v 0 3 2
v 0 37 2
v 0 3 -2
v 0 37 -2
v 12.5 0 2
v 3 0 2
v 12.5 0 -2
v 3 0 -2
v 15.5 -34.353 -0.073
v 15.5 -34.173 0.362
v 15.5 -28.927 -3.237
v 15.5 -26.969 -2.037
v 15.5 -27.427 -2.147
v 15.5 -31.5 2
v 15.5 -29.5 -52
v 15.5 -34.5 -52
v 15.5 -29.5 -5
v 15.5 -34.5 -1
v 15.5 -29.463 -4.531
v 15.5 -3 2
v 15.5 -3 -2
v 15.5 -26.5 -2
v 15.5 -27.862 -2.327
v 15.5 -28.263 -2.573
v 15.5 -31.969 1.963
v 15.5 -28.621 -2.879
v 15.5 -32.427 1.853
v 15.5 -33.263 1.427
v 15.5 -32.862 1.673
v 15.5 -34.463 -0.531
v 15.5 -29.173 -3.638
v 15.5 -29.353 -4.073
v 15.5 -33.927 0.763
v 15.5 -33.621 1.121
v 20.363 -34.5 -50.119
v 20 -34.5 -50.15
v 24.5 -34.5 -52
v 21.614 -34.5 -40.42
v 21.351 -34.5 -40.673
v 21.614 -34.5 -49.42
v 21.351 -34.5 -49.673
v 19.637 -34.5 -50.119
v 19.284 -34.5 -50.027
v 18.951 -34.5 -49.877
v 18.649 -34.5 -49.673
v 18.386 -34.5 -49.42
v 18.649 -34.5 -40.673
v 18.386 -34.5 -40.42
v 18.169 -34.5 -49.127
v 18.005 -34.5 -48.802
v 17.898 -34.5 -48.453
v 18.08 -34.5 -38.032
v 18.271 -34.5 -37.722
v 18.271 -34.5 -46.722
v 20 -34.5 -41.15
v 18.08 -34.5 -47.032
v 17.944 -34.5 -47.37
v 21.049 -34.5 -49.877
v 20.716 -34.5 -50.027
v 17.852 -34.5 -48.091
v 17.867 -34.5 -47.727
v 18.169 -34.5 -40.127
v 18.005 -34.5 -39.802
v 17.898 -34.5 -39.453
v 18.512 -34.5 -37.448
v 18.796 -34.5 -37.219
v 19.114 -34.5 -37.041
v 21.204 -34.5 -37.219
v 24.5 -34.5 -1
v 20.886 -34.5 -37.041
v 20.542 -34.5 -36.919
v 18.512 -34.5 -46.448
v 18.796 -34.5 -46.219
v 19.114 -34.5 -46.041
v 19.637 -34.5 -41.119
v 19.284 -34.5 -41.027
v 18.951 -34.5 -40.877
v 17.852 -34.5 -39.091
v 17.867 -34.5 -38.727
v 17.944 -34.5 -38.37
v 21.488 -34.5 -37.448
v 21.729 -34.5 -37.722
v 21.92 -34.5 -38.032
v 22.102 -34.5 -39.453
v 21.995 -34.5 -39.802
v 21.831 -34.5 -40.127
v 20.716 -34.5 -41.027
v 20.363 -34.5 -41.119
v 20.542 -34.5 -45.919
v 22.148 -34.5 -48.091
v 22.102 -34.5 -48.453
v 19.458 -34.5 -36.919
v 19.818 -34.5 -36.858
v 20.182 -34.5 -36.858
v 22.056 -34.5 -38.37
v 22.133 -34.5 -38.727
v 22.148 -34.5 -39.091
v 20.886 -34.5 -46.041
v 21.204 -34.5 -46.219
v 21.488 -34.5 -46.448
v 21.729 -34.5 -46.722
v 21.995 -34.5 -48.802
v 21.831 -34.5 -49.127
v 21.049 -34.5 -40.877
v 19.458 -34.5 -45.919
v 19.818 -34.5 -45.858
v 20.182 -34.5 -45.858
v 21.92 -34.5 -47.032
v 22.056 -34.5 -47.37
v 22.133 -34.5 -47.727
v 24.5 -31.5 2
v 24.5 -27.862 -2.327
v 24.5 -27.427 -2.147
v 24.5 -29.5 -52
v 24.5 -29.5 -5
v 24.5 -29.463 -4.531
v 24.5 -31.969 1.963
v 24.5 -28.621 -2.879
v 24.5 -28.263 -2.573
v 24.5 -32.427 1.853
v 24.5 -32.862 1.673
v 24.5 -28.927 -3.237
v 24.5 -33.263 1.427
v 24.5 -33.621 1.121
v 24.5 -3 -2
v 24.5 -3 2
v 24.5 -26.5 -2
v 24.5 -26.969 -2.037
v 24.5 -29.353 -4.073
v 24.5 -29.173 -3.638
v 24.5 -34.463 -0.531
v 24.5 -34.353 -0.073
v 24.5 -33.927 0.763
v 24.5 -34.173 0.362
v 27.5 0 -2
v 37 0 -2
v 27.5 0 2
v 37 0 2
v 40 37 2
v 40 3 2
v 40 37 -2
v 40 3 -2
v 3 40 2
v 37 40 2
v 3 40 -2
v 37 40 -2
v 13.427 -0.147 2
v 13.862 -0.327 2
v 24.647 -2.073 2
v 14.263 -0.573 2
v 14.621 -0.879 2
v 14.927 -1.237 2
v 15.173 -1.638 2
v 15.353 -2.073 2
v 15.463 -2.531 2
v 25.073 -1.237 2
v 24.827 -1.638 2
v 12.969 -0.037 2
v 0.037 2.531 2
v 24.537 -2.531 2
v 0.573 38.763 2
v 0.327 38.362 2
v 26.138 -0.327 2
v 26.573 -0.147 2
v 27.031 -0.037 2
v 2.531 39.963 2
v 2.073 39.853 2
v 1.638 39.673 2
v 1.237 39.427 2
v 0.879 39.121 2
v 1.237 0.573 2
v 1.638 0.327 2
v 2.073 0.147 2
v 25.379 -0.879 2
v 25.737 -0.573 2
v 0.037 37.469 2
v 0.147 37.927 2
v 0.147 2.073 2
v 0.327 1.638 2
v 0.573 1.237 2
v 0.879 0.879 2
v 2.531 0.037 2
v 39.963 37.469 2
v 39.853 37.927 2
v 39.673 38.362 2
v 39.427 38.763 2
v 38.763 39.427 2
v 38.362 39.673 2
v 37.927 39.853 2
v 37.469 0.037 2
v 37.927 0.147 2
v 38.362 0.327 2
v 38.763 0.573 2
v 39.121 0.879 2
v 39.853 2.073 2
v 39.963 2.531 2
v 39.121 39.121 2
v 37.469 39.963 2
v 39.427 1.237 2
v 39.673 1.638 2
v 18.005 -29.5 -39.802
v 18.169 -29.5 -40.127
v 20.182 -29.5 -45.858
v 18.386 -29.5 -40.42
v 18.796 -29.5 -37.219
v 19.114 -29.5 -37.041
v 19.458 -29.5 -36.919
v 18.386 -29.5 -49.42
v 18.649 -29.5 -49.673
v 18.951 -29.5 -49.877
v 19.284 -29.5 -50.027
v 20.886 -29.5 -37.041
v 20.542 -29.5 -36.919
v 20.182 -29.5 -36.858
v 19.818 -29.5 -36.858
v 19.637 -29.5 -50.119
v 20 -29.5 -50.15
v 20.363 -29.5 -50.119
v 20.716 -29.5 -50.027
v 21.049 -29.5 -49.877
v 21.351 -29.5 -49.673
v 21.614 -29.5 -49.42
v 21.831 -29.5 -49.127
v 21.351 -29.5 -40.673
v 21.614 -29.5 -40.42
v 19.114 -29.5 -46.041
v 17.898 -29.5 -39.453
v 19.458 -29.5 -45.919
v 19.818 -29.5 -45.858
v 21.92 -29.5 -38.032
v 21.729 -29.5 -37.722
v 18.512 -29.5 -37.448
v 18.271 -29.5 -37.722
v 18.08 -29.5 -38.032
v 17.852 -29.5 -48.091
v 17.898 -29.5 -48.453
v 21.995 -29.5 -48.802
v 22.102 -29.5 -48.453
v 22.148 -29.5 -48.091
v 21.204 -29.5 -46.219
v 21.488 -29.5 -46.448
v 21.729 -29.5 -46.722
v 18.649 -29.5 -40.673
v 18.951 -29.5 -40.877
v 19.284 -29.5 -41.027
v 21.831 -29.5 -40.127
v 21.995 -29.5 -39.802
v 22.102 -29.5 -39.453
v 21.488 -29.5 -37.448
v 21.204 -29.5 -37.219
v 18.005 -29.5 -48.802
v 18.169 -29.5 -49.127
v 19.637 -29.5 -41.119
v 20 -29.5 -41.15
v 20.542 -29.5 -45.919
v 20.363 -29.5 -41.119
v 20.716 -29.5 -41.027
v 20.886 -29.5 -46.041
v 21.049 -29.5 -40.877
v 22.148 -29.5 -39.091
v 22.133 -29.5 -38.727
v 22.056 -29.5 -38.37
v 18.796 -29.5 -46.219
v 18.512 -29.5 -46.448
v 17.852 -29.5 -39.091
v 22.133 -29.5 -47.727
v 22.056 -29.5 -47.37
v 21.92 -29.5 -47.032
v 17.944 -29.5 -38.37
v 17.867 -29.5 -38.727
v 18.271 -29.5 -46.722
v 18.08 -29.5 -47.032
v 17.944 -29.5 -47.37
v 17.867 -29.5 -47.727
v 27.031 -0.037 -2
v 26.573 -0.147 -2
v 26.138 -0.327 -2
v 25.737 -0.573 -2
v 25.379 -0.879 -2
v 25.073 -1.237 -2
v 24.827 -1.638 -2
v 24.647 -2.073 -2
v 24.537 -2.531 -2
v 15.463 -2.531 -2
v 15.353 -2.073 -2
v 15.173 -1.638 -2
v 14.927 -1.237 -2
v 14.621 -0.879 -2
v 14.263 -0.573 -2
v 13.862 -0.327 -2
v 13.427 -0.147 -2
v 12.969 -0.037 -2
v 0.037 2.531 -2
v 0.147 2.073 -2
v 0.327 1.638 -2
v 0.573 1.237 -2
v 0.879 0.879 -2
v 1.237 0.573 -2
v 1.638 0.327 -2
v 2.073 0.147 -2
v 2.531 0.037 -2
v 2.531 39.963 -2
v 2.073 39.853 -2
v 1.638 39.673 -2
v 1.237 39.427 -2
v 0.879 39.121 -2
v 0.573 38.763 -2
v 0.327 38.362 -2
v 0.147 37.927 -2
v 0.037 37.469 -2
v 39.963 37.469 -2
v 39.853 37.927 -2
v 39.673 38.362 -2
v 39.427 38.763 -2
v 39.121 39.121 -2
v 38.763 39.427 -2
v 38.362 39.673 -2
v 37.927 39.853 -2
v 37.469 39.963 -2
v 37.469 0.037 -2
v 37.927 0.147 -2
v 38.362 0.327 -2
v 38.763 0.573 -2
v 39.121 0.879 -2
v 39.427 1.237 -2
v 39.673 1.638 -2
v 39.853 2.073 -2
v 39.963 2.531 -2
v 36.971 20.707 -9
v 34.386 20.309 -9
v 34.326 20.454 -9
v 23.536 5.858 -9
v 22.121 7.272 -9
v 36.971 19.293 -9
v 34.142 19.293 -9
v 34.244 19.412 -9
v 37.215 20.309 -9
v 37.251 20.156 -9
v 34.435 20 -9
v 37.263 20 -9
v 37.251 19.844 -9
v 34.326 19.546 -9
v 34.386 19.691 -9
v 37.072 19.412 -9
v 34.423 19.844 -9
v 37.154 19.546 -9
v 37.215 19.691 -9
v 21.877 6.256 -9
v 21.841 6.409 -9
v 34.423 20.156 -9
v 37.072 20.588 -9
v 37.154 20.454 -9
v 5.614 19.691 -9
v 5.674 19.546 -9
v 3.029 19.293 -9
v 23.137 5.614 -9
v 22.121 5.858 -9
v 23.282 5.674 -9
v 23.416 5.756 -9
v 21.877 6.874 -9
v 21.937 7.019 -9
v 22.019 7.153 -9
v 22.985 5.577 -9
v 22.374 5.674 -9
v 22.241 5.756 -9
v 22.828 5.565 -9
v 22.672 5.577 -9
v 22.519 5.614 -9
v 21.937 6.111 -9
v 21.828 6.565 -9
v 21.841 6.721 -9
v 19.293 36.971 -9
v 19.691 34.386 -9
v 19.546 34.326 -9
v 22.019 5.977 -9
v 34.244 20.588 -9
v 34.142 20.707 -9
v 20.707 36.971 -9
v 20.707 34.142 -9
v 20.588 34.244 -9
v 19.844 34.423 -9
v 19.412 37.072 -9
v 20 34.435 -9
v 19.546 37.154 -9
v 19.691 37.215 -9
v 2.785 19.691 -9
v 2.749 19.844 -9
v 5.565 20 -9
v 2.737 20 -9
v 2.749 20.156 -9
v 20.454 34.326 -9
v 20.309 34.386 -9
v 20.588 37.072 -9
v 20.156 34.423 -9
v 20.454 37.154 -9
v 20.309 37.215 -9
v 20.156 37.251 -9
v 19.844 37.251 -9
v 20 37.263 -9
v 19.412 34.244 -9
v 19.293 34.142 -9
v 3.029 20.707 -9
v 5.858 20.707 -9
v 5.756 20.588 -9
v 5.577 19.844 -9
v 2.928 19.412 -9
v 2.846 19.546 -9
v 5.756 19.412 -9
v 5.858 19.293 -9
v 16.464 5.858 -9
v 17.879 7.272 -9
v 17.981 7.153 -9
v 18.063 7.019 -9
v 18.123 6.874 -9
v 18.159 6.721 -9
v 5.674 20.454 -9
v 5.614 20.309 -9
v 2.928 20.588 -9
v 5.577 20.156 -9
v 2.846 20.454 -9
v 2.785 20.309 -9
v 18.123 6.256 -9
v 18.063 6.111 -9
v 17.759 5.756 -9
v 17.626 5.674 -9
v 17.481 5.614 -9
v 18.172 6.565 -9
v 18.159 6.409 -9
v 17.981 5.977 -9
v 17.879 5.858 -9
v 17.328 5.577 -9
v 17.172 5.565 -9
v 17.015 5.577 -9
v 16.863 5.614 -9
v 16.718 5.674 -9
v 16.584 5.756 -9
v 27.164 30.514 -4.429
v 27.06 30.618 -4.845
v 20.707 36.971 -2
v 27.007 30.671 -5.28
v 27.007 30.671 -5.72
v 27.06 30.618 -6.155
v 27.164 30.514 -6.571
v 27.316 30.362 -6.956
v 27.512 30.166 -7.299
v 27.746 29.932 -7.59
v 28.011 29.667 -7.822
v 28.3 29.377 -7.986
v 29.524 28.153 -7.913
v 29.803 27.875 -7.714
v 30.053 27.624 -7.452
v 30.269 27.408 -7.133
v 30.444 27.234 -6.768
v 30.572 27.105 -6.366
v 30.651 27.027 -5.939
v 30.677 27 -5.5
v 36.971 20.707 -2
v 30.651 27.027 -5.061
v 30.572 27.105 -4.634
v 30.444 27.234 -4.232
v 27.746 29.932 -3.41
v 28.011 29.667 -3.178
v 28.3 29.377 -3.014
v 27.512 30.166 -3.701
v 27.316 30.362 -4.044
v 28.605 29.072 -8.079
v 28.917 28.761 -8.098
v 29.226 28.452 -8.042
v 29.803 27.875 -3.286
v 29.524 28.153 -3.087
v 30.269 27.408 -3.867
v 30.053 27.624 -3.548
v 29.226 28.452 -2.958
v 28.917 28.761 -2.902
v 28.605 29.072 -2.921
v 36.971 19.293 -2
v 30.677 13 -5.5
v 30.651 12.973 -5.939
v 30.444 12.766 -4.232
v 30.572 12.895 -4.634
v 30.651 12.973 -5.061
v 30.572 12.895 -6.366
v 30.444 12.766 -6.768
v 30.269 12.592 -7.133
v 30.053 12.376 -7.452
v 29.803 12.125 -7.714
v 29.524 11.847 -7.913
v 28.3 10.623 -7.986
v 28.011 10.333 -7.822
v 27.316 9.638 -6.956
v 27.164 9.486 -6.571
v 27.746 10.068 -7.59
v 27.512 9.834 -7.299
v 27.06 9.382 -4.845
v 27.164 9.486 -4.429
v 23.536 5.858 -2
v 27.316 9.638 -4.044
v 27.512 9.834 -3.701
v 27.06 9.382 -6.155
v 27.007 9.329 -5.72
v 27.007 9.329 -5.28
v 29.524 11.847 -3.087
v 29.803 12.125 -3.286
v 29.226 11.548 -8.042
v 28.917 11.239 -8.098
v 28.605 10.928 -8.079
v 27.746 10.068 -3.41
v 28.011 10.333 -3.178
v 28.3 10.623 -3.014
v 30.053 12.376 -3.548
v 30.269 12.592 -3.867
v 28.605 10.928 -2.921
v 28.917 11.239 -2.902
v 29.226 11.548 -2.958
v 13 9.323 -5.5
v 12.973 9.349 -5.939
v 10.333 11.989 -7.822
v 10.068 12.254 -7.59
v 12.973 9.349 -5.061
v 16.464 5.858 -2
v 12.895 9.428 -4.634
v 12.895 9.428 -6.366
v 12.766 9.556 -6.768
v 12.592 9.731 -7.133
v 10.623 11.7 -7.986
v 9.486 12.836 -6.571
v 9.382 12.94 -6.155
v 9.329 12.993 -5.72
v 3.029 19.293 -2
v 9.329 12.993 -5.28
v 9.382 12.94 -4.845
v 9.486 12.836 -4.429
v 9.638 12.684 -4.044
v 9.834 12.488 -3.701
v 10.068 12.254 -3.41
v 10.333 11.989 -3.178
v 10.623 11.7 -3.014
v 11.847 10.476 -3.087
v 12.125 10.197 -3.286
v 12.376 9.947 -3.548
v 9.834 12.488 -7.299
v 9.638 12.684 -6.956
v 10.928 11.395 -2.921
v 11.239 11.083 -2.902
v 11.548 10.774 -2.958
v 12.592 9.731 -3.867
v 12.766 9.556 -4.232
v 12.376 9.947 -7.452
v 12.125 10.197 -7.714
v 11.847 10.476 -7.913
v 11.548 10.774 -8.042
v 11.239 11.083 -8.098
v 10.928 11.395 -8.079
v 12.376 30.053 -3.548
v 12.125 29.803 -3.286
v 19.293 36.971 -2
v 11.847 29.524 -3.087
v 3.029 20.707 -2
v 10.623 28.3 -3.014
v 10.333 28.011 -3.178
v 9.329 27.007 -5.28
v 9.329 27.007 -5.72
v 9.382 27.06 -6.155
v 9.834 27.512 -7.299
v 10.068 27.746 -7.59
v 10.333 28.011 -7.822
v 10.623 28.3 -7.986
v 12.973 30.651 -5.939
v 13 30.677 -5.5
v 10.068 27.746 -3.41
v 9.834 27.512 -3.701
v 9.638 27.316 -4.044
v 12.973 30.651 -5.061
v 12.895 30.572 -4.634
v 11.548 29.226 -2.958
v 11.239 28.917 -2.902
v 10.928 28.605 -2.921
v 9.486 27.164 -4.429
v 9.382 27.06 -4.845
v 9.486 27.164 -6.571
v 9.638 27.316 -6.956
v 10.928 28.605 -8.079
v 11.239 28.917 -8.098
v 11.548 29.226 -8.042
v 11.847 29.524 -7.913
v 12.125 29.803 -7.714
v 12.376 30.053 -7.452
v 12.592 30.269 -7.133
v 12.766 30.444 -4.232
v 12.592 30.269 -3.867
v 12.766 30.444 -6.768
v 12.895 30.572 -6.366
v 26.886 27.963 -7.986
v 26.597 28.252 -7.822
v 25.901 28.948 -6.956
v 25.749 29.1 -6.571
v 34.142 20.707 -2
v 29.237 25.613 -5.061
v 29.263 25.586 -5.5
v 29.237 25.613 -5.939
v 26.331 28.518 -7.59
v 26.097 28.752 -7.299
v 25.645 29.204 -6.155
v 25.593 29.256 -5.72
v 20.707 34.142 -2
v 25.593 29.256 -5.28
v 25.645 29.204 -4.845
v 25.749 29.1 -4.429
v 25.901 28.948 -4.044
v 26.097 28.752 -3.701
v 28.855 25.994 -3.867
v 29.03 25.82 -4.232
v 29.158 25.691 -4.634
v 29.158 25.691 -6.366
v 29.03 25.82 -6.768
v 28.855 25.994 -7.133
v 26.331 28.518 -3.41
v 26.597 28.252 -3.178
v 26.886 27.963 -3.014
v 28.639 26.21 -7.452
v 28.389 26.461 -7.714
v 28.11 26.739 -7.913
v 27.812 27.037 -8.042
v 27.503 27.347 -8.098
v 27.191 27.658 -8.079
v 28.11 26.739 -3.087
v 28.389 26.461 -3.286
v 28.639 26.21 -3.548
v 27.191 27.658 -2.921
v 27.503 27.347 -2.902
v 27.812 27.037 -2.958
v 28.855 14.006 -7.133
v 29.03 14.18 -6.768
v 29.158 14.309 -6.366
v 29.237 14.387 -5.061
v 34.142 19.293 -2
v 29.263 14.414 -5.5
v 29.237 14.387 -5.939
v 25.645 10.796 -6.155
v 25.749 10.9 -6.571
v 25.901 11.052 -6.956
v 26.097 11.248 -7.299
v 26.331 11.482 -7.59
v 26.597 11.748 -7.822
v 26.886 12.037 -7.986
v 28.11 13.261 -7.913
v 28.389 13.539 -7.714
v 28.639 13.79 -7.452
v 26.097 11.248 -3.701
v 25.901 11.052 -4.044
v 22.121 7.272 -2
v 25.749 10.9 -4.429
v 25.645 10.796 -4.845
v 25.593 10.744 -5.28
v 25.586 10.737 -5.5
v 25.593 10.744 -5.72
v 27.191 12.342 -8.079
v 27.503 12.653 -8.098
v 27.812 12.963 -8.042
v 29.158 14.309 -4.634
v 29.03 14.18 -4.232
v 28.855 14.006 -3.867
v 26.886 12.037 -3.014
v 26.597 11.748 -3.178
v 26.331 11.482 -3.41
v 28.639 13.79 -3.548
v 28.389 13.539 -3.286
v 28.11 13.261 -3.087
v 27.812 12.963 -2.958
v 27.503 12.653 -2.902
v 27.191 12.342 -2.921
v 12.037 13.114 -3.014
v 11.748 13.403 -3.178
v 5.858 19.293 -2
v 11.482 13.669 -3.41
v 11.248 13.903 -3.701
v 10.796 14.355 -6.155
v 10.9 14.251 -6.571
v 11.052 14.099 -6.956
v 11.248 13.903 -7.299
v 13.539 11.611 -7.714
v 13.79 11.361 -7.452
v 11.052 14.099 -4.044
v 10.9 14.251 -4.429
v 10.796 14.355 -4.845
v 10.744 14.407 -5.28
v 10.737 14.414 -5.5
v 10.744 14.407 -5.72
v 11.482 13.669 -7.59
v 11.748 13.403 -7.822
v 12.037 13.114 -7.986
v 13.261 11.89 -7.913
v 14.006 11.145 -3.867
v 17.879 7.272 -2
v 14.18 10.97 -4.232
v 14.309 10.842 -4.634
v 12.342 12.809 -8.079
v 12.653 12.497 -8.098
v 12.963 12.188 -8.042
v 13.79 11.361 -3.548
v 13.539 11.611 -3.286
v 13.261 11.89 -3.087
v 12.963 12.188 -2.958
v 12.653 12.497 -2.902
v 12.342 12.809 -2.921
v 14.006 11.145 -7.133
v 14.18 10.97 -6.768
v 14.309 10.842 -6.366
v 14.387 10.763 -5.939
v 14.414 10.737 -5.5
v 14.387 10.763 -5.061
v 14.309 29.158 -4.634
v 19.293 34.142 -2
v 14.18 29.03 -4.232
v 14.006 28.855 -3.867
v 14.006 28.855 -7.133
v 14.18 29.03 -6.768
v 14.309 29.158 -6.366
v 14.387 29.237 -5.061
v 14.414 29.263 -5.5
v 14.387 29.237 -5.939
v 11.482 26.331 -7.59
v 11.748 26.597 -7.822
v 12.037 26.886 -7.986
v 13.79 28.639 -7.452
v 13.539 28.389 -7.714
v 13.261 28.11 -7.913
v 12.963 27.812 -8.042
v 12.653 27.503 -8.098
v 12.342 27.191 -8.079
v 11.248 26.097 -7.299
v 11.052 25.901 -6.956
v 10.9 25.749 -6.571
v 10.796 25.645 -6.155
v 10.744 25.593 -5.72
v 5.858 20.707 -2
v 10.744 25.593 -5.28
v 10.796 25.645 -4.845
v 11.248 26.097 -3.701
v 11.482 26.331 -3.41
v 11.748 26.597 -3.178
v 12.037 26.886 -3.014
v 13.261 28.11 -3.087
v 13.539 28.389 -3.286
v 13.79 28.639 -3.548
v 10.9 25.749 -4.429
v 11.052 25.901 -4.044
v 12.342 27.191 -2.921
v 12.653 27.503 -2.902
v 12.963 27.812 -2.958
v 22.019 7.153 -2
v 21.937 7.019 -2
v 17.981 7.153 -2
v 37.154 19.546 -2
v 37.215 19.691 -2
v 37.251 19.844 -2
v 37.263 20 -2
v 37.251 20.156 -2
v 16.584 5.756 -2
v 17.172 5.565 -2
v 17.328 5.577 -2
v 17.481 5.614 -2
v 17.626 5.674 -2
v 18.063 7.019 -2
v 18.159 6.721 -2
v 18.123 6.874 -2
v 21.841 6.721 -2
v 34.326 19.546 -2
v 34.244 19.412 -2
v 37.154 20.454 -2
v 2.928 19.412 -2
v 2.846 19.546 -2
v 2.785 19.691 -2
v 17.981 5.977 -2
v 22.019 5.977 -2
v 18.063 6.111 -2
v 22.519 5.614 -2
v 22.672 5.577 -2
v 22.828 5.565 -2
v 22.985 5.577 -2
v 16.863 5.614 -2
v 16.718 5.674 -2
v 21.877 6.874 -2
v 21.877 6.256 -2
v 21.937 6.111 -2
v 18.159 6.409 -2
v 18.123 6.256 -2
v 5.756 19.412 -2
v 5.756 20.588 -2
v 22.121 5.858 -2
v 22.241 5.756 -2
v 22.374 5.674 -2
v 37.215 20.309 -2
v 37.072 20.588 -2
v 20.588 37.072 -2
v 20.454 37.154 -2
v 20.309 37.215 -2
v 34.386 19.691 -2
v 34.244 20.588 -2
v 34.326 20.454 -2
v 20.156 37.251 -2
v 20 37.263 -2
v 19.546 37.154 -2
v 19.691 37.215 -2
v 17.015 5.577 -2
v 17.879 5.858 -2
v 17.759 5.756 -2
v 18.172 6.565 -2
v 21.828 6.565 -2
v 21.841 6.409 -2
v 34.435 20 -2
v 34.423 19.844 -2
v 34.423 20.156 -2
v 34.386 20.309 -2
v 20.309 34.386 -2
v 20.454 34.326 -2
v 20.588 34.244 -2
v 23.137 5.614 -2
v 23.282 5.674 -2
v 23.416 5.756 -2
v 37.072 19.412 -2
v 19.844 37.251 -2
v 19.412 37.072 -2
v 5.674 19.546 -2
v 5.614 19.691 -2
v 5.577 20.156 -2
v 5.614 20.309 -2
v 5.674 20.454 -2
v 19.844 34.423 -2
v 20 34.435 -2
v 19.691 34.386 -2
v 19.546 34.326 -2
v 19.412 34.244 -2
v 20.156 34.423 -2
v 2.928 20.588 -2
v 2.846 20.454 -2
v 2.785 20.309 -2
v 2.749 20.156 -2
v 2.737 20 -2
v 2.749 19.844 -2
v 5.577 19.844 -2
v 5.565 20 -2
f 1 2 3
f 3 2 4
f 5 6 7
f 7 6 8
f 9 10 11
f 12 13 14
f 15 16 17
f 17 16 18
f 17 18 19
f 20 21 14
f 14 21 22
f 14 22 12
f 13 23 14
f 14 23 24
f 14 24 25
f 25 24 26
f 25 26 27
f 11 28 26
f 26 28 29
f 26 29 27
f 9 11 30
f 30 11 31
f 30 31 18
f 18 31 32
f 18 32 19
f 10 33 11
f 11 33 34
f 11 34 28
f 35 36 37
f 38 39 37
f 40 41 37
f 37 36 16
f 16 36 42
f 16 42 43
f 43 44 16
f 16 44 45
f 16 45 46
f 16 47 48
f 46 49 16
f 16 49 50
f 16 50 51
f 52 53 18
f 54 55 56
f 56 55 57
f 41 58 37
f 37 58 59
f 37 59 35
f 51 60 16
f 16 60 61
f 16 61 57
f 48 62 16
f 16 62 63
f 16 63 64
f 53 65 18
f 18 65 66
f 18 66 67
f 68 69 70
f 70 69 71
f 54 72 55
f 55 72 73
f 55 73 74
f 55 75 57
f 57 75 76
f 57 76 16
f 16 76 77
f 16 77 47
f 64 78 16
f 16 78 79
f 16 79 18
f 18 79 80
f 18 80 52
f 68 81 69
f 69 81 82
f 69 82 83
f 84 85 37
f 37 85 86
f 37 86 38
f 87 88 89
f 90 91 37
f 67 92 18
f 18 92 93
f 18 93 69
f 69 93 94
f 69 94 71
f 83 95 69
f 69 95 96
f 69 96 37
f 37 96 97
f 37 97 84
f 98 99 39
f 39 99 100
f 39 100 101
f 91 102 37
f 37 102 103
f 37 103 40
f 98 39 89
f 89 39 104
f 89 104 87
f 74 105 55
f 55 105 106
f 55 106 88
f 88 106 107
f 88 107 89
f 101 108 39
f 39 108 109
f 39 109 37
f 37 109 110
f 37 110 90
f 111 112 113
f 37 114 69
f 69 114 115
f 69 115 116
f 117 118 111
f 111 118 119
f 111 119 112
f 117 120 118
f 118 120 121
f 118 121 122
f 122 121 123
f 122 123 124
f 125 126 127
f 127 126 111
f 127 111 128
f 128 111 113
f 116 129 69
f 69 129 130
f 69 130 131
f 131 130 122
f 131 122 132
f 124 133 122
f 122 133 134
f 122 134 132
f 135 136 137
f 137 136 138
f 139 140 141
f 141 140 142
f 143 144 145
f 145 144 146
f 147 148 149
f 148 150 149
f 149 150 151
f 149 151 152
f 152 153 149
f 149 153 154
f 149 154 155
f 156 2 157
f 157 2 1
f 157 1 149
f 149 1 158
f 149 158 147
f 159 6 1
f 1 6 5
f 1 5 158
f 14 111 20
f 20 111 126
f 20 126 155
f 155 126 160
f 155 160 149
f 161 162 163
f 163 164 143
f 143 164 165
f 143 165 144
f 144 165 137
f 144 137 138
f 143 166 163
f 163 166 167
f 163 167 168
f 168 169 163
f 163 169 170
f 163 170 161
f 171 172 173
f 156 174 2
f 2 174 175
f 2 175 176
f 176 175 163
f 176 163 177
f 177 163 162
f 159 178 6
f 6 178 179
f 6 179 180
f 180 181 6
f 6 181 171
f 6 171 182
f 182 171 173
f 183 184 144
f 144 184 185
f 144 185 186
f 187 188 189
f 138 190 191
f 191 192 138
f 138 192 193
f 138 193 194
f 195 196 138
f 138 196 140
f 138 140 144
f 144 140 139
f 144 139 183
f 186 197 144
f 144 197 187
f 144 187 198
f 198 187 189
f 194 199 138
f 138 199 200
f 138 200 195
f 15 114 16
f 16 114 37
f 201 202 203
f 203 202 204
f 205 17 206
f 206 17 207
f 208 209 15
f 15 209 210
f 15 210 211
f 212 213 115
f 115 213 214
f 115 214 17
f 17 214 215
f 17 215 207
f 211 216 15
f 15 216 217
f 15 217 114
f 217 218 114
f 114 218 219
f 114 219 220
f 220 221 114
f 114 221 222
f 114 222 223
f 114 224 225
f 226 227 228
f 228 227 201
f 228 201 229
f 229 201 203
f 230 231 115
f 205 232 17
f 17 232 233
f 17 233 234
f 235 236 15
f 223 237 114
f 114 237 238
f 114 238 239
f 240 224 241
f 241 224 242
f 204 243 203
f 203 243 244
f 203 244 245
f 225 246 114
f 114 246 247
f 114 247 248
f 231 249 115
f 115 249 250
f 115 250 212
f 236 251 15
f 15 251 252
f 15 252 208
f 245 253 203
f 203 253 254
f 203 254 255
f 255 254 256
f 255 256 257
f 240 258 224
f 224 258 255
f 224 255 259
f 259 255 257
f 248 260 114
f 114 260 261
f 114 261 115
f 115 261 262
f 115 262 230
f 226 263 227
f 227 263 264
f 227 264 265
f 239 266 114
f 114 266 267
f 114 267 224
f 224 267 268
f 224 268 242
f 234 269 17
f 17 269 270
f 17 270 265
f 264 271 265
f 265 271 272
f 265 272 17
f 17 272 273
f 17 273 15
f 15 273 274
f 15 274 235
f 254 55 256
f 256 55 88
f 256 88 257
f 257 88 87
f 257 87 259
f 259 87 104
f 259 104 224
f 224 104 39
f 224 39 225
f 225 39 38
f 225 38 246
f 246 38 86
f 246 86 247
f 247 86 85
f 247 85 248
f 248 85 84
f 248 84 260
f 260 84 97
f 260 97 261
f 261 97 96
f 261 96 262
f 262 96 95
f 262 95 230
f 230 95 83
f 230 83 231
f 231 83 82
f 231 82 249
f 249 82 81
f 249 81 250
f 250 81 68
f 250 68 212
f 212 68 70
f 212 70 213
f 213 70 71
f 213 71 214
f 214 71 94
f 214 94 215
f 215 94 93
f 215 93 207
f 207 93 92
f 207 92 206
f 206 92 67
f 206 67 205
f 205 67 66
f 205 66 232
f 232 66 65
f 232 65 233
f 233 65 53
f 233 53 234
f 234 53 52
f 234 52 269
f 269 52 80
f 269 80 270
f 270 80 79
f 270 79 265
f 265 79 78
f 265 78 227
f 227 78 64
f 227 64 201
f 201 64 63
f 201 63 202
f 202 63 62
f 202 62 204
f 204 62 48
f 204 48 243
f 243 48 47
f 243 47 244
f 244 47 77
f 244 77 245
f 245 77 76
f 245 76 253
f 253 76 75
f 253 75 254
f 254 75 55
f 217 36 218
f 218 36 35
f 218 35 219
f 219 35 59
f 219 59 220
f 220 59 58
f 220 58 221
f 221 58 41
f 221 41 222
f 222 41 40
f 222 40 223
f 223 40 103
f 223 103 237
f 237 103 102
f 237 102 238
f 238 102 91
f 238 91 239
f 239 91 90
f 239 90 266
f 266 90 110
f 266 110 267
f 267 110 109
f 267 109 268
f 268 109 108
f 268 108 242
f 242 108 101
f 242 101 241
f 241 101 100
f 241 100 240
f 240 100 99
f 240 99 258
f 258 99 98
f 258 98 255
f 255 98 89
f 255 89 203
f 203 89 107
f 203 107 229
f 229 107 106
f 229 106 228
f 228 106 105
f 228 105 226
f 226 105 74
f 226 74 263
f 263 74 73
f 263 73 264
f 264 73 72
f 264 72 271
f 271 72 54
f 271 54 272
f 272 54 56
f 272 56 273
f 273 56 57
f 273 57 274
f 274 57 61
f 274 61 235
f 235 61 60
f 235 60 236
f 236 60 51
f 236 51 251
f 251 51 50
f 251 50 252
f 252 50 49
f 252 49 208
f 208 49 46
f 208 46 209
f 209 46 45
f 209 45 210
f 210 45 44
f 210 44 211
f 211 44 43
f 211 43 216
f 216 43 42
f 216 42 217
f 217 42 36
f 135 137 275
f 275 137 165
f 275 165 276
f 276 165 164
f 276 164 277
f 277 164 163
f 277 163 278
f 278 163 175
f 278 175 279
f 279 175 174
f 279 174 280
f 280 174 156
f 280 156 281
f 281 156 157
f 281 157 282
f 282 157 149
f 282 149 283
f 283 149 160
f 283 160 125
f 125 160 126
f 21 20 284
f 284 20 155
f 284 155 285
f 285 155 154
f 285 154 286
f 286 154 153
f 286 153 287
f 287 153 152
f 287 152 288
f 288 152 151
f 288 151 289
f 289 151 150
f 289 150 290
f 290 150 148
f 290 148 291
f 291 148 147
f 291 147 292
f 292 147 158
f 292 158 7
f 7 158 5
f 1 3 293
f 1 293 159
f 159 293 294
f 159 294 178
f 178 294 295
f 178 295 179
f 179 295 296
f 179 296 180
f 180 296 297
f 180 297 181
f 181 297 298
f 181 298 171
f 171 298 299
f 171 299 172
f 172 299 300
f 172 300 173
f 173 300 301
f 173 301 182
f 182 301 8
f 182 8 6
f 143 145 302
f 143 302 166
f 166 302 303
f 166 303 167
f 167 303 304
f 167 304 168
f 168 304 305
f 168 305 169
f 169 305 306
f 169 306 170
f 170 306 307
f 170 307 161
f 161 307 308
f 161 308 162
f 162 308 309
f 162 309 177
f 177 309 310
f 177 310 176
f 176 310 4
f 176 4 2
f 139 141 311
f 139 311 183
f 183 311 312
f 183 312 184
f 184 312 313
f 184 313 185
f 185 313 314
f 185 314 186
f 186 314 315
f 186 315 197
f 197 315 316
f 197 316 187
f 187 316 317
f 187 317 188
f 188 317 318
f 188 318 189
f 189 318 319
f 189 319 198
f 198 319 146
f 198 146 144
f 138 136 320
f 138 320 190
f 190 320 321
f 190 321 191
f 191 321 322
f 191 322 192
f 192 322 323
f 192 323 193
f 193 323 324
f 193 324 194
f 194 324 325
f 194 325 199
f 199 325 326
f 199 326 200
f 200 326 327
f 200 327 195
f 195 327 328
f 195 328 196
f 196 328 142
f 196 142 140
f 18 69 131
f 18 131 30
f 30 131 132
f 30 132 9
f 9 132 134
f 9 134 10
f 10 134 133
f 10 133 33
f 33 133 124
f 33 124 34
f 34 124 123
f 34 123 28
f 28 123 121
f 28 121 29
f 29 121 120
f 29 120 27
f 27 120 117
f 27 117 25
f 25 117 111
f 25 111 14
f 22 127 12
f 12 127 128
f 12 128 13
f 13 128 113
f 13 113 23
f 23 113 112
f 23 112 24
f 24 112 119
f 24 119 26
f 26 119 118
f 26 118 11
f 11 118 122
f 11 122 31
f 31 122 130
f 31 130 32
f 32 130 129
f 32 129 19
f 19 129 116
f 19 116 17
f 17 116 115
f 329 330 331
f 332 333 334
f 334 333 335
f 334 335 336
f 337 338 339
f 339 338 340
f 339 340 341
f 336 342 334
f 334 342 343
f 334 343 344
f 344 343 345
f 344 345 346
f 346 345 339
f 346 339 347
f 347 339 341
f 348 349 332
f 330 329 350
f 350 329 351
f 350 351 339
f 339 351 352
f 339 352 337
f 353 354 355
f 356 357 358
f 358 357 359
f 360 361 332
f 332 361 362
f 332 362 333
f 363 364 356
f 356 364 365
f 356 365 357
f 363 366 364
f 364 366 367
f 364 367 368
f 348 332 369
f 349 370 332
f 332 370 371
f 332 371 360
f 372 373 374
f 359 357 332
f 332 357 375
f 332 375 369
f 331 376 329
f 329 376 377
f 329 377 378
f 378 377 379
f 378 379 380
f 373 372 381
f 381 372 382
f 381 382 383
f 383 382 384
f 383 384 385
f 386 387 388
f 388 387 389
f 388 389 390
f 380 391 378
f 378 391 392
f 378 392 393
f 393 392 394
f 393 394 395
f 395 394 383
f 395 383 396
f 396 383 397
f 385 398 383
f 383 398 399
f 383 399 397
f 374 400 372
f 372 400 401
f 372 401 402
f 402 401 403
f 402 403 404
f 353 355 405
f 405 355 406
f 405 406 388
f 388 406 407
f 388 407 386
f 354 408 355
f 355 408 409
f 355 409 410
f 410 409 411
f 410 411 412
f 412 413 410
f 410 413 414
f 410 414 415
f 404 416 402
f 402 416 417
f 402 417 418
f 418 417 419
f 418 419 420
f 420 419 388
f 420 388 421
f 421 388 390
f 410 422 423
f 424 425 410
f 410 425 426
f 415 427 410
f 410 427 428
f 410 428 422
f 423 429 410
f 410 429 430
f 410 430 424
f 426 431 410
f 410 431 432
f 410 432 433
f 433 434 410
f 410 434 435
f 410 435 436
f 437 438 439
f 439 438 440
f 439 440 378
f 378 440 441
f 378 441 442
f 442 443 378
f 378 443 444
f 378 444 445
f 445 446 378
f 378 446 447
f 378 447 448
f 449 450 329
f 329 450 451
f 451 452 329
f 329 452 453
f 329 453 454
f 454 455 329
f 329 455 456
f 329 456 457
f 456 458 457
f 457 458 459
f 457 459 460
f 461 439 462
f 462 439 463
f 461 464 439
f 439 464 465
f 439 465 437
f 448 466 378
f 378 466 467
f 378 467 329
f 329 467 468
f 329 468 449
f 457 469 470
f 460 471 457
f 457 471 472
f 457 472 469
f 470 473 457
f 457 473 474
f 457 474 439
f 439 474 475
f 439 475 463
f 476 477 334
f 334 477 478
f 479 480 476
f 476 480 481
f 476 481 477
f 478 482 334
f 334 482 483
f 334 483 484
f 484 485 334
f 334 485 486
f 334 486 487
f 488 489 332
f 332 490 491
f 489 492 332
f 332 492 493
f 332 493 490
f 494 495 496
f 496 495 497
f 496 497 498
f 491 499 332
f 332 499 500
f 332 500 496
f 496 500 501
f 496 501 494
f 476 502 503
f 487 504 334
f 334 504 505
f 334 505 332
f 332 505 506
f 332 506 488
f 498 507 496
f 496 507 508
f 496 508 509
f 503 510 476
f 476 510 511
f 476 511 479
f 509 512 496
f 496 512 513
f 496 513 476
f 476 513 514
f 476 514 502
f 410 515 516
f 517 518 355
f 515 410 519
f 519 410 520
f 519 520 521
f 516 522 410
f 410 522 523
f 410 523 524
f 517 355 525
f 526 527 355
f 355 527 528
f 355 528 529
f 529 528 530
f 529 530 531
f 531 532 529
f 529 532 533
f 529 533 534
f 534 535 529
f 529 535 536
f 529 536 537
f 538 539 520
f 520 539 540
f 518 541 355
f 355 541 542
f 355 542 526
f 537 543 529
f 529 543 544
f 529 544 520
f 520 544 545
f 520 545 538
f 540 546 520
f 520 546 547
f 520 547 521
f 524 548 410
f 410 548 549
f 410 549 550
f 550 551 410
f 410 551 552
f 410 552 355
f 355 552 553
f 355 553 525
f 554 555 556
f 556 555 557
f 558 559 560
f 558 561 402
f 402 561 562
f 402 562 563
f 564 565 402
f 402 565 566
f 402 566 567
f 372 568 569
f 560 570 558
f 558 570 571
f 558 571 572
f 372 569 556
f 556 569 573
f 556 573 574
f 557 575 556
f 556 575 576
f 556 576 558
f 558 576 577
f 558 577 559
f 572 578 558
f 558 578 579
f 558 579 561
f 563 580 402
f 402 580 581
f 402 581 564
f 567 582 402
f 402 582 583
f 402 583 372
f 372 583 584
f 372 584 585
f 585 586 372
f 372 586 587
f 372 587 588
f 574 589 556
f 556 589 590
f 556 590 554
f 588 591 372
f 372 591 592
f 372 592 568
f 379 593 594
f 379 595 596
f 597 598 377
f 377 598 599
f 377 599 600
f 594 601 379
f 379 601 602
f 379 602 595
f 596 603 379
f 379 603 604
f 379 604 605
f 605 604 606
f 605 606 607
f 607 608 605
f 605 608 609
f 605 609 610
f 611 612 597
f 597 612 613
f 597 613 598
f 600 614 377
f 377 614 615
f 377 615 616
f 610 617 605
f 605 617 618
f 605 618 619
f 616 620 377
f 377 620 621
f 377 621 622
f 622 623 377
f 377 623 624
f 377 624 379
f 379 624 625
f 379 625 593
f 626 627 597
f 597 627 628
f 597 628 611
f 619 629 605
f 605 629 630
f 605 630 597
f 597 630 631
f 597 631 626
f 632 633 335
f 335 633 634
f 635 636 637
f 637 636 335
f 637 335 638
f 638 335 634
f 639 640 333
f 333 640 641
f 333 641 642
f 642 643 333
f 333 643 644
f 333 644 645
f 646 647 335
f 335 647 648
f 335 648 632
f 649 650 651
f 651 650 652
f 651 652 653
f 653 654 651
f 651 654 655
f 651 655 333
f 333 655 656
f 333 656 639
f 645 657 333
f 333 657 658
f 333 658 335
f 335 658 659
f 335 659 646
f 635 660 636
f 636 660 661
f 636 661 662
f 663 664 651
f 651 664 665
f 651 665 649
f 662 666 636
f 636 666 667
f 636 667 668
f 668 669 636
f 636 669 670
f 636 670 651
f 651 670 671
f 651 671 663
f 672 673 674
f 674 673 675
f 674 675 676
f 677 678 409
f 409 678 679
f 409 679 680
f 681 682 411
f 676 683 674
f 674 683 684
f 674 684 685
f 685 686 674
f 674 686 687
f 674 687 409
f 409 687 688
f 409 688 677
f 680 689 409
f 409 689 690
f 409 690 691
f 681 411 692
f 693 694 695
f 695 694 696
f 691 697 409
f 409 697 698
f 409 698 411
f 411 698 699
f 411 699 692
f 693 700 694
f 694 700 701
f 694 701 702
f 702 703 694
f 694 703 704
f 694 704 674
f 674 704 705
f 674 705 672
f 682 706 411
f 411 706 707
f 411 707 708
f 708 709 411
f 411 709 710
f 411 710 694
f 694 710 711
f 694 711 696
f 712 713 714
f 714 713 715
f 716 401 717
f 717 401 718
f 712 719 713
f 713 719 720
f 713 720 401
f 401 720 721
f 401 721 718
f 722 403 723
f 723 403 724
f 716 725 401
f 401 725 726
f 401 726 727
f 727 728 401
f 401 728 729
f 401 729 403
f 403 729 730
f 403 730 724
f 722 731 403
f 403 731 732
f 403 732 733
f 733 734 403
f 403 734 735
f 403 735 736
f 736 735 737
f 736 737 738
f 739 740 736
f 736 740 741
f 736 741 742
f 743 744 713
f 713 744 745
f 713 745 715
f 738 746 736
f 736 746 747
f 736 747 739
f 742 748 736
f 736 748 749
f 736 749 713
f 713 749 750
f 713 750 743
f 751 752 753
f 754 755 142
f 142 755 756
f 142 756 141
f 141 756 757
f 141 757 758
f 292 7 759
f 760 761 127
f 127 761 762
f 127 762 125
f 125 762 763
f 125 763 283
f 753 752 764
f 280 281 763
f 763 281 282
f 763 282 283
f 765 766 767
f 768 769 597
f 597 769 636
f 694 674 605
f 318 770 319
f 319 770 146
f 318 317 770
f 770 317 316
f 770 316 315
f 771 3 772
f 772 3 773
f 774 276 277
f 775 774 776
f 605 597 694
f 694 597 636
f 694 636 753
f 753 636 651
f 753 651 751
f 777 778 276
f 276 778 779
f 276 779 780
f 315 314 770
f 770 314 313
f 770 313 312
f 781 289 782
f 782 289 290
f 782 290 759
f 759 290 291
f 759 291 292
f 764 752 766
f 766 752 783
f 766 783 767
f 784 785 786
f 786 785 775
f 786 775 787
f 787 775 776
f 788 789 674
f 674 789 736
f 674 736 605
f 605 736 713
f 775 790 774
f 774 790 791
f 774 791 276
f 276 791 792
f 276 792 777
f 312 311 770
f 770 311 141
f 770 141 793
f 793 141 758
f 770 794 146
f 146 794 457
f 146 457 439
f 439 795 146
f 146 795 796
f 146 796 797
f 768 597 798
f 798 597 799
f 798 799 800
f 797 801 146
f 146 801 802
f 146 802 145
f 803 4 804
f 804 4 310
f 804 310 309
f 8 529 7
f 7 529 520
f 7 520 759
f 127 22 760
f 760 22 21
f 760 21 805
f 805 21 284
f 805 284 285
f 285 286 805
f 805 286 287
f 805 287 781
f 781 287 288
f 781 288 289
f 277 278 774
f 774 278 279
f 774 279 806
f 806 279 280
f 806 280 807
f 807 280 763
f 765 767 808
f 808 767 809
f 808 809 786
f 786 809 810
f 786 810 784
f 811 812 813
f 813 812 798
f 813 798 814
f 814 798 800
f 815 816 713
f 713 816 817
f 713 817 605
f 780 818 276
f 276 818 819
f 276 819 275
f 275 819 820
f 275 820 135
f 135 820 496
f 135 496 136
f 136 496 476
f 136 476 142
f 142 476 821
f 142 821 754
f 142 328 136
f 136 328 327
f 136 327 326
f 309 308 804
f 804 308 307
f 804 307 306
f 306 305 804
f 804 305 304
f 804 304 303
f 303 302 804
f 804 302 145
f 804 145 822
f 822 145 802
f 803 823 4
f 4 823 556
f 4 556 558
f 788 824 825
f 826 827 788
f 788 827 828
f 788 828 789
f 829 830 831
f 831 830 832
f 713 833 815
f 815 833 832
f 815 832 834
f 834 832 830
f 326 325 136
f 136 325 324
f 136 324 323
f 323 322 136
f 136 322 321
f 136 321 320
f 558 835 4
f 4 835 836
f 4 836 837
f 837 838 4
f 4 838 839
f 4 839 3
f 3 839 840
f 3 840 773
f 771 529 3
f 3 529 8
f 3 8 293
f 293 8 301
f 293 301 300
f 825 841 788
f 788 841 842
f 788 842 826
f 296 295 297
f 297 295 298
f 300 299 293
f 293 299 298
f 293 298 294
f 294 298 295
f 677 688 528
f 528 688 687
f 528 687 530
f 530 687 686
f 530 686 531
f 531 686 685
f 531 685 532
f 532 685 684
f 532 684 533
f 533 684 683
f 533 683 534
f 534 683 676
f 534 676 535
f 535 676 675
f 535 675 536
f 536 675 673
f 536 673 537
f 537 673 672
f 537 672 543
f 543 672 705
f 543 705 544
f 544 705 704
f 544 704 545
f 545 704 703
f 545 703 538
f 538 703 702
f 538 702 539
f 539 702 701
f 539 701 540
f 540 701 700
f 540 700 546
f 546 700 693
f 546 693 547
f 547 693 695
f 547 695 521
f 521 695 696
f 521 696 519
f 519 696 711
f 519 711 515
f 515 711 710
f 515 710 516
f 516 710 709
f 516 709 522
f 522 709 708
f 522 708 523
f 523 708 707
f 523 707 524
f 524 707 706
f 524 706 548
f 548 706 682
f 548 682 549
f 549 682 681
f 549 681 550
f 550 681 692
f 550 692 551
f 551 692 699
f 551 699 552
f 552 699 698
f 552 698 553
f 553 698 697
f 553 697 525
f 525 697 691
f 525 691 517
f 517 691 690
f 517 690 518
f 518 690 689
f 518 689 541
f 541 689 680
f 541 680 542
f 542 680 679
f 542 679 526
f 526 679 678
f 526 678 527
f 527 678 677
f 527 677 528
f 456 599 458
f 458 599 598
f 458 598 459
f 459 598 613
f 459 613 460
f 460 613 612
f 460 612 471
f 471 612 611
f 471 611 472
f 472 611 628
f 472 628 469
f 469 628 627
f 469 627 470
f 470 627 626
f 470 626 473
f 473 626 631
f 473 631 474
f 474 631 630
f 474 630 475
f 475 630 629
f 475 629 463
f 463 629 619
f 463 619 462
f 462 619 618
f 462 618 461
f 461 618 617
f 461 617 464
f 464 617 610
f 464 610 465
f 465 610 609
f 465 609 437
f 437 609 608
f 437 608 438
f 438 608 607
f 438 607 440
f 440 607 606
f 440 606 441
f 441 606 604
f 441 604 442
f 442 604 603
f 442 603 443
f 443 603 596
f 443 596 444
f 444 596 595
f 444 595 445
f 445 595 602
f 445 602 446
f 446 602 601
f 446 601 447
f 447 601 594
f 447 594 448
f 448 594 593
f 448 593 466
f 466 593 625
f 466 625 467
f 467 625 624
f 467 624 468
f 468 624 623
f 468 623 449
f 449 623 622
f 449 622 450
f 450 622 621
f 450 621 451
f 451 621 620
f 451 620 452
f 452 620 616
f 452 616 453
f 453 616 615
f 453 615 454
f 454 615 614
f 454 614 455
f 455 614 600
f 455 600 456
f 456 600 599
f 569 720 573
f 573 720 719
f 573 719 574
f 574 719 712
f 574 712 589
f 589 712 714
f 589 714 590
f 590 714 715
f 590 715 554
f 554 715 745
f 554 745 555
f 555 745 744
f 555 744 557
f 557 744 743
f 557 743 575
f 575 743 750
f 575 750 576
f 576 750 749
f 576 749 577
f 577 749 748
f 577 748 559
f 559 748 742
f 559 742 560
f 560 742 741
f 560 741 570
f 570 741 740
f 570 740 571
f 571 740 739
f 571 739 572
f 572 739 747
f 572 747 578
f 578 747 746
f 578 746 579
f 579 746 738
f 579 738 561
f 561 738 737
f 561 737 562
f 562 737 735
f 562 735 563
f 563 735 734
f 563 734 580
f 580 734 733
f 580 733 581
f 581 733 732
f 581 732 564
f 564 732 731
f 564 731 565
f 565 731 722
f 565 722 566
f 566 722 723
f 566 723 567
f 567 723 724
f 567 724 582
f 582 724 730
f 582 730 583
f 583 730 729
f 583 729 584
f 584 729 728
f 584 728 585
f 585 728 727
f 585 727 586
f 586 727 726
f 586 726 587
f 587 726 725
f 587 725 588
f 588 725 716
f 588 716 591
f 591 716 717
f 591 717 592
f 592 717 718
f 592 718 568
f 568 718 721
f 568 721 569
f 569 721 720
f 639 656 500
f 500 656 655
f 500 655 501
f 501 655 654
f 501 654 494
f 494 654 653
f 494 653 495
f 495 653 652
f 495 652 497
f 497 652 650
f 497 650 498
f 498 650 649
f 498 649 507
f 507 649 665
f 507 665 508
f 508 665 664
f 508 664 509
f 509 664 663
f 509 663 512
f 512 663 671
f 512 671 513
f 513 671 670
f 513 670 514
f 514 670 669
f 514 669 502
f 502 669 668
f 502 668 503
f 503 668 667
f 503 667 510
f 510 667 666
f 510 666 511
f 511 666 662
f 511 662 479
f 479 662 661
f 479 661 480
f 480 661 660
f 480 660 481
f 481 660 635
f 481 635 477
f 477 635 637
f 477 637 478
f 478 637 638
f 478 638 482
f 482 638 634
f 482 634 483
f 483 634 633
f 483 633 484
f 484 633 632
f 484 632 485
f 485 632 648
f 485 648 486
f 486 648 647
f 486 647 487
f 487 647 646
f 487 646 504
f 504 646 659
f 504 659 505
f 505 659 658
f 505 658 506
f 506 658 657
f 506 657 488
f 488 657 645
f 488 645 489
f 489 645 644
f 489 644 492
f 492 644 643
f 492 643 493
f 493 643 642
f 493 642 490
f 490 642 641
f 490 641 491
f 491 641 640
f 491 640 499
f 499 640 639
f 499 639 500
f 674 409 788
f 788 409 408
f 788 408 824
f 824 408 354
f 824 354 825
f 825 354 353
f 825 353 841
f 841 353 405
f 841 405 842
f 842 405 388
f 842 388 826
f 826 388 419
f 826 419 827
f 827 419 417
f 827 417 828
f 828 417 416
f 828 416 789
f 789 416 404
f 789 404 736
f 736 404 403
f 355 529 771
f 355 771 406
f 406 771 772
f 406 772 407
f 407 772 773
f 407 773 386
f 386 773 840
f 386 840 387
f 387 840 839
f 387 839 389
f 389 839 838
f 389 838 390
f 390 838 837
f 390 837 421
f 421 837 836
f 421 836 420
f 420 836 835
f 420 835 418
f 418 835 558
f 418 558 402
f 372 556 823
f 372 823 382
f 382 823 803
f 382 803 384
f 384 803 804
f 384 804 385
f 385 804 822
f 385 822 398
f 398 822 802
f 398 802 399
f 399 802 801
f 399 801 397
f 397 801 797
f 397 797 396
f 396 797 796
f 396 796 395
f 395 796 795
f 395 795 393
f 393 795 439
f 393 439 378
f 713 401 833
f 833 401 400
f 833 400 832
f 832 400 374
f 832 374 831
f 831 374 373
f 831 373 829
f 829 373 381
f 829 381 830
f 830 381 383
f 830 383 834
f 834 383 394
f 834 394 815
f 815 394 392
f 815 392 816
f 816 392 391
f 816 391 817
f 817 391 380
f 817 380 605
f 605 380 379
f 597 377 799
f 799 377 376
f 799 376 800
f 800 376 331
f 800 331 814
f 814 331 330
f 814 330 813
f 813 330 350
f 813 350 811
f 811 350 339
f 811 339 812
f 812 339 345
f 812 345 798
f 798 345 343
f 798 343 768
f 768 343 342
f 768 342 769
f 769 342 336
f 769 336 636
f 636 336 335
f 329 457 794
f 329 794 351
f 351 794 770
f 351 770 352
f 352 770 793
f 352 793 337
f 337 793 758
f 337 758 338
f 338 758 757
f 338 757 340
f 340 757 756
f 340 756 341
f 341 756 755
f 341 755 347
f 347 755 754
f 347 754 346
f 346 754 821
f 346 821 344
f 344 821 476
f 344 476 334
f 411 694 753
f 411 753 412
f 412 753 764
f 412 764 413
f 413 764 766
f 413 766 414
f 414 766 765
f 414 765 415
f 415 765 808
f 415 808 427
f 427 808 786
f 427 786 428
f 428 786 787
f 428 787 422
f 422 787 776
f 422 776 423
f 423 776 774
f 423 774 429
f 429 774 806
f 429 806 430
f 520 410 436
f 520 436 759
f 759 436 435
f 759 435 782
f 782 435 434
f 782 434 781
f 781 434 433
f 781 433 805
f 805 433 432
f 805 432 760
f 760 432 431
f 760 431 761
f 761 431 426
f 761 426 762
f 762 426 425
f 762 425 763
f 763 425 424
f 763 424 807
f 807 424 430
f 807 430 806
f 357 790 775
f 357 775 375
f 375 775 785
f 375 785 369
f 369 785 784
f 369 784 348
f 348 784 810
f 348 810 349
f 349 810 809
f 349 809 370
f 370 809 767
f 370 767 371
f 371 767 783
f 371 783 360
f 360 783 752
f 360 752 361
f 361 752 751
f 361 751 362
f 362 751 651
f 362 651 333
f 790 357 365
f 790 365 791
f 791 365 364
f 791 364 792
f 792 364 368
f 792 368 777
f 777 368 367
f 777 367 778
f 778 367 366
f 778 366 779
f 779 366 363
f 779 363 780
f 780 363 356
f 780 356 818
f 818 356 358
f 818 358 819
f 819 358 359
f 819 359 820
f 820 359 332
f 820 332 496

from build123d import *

# Parameters (mm, degrees)
BOSS_EXTRUDE1_DEPTH = 2
SKETCH3_W           = 9
SKETCH3_H           = 50
SKETCH3_R           = 2.15
BOSS_EXTRUDE2_DEPTH = 5
FILLET1_R           = 3
BOSS_EXTRUDE3_DEPTH = 7
CUT_EXTRUDE1_REACH  = 76.971
SKETCH5_R           = 2.6
CUT_EXTRUDE2_REACH  = 79.848
SKETCH7_R           = 2.6
CUT_EXTRUDE3_DEPTH  = 7
FILLET2_R           = 1


with BuildPart() as part:
    # Sketch1 → Boss-Extrude1 (new, symmetric)
    with BuildSketch(Plane.XY):
        Polygon((0, 0), (15.5, 0), (15.5, -34.5), (24.5, -34.5), (24.5, 0), (40, 0), (40, 40), (0, 40), align=None)
    extrude(amount=BOSS_EXTRUDE1_DEPTH, both=True)

    # Sketch3 → Boss-Extrude2 (add)
    with BuildSketch(Plane.XZ.offset(34.5)):
        with Locations((20, -27)):
            Rectangle(SKETCH3_W, SKETCH3_H)
        with Locations(Location((20, -48, 0), (0, 0, 270))):
            Circle(SKETCH3_R, mode=Mode.SUBTRACT)
        with Locations(Location((20, -39, 0), (0, 0, 270))):
            Circle(SKETCH3_R, mode=Mode.SUBTRACT)
    extrude(amount=-BOSS_EXTRUDE2_DEPTH)

    # Fillet1
    fillet1_edges = [part.edges().sort_by_distance(p)[0] for p in [
        (0, 40, 0),
        (40, 40, 0),
        (40, 0, 0),
        (24.5, 0, 0),
        (15.5, 0, 0),
        (0, 0, 0),
        (20, -34.5, 2),
        (20, -29.5, -2),
    ]]
    fillet(fillet1_edges, radius=FILLET1_R)

    # Sketch4 → Boss-Extrude3 (add)
    with BuildSketch(Plane(origin=(0, 0, -2), x_dir=(-1, 0, 0), z_dir=(0, 0, -1))):
        Polygon((-20, 2.32233047), (-37.67766953, 20), (-20, 37.67766953), (-2.32233047, 20), align=None)
        Polygon((-20, 5.150757595), (-34.849242405, 20), (-20, 34.849242405), (-5.150757595, 20), align=None, mode=Mode.SUBTRACT)
    extrude(amount=BOSS_EXTRUDE3_DEPTH)

    # Cut-Extrude1: up to this face of the body (flat: up to its plane)
    cut_extrude1_end = Plane(part.part.faces().sort_by_distance((28.838834765, 28.838834765, -5.5))[0])
    # Sketch5 → Cut-Extrude1 (cut, up to the picked face)
    with BuildSketch(Plane(origin=(11.161165235, 11.161165235, 0), x_dir=(0, 0, 1), z_dir=(-0.7071067811865398, -0.7071067811865552, 0)), mode=Mode.PRIVATE) as cut_extrude1_sk1:
        with Locations(Location((-5.5, 0, 0), (0, 0, 270))):
            Circle(SKETCH5_R)
    cut_extrude1_tool1 = split(extrude(cut_extrude1_sk1.sketch, amount=-CUT_EXTRUDE1_REACH, mode=Mode.PRIVATE), bisect_by=cut_extrude1_end, keep=Keep.BOTH, mode=Mode.PRIVATE)
    add(cut_extrude1_tool1.solids().sort_by(Axis((11.161165, 11.161165, -5.5), (0.7071067811865398, 0.7071067811865552, 0)))[0], mode=Mode.SUBTRACT)

    # Cut-Extrude2: up to this face of the body (flat: up to its plane)
    cut_extrude2_end = Plane(part.part.faces().sort_by_distance((11.161165235, 28.838834765, -5.5))[0])
    # Sketch7 → Cut-Extrude2 (cut, up to the picked face)
    with BuildSketch(Plane(origin=(8.838834765, -8.838834765, 0), x_dir=(0.7071067811865399, 0.7071067811865551, 0), z_dir=(0.7071067811865551, -0.7071067811865399, 0)), mode=Mode.PRIVATE) as cut_extrude2_sk1:
        with Locations((28.284271248, -5.5)):
            Circle(SKETCH7_R)
    cut_extrude2_tool1 = split(extrude(cut_extrude2_sk1.sketch, amount=-CUT_EXTRUDE2_REACH, mode=Mode.PRIVATE), bisect_by=cut_extrude2_end, keep=Keep.BOTH, mode=Mode.PRIVATE)
    add(cut_extrude2_tool1.solids().sort_by(Axis((28.838835, 11.161165, -5.5), (-0.7071067811865551, 0.7071067811865399, 0)))[0], mode=Mode.SUBTRACT)

    # Sketch9 → Cut-Extrude3 (cut)
    with BuildSketch(Plane(origin=(0, 0, -9), x_dir=(-1, 0, 0), z_dir=(0, 0, -1))):
        Polygon((-22.828427125, 5.150757595), (-20, 2.32233047), (-17.171572875, 5.150757595), (-18.585786438, 6.564971157), (-20, 5.150757595), (-21.414213562, 6.564971157), align=None)
    extrude(amount=-CUT_EXTRUDE3_DEPTH, mode=Mode.SUBTRACT)

    # Fillet2
    fillet2_edges = [part.edges().sort_by_distance(p)[0] for p in [
        (21.414213562, 6.564971157, -5.5),
        (18.585786438, 6.564971157, -5.5),
        (17.171572875, 5.150757595, -5.5),
        (22.828427125, 5.150757595, -5.5),
        (5.150757595, 20, -5.5),
        (2.32233047, 20, -5.5),
        (20, 37.67766953, -5.5),
        (20, 34.849242405, -5.5),
        (34.849242405, 20, -5.5),
        (37.67766953, 20, -5.5),
    ]]
    fillet(fillet2_edges, radius=FILLET2_R - 0.0001)  # a hair under: the kernel refuses the full size


solid = part.part
